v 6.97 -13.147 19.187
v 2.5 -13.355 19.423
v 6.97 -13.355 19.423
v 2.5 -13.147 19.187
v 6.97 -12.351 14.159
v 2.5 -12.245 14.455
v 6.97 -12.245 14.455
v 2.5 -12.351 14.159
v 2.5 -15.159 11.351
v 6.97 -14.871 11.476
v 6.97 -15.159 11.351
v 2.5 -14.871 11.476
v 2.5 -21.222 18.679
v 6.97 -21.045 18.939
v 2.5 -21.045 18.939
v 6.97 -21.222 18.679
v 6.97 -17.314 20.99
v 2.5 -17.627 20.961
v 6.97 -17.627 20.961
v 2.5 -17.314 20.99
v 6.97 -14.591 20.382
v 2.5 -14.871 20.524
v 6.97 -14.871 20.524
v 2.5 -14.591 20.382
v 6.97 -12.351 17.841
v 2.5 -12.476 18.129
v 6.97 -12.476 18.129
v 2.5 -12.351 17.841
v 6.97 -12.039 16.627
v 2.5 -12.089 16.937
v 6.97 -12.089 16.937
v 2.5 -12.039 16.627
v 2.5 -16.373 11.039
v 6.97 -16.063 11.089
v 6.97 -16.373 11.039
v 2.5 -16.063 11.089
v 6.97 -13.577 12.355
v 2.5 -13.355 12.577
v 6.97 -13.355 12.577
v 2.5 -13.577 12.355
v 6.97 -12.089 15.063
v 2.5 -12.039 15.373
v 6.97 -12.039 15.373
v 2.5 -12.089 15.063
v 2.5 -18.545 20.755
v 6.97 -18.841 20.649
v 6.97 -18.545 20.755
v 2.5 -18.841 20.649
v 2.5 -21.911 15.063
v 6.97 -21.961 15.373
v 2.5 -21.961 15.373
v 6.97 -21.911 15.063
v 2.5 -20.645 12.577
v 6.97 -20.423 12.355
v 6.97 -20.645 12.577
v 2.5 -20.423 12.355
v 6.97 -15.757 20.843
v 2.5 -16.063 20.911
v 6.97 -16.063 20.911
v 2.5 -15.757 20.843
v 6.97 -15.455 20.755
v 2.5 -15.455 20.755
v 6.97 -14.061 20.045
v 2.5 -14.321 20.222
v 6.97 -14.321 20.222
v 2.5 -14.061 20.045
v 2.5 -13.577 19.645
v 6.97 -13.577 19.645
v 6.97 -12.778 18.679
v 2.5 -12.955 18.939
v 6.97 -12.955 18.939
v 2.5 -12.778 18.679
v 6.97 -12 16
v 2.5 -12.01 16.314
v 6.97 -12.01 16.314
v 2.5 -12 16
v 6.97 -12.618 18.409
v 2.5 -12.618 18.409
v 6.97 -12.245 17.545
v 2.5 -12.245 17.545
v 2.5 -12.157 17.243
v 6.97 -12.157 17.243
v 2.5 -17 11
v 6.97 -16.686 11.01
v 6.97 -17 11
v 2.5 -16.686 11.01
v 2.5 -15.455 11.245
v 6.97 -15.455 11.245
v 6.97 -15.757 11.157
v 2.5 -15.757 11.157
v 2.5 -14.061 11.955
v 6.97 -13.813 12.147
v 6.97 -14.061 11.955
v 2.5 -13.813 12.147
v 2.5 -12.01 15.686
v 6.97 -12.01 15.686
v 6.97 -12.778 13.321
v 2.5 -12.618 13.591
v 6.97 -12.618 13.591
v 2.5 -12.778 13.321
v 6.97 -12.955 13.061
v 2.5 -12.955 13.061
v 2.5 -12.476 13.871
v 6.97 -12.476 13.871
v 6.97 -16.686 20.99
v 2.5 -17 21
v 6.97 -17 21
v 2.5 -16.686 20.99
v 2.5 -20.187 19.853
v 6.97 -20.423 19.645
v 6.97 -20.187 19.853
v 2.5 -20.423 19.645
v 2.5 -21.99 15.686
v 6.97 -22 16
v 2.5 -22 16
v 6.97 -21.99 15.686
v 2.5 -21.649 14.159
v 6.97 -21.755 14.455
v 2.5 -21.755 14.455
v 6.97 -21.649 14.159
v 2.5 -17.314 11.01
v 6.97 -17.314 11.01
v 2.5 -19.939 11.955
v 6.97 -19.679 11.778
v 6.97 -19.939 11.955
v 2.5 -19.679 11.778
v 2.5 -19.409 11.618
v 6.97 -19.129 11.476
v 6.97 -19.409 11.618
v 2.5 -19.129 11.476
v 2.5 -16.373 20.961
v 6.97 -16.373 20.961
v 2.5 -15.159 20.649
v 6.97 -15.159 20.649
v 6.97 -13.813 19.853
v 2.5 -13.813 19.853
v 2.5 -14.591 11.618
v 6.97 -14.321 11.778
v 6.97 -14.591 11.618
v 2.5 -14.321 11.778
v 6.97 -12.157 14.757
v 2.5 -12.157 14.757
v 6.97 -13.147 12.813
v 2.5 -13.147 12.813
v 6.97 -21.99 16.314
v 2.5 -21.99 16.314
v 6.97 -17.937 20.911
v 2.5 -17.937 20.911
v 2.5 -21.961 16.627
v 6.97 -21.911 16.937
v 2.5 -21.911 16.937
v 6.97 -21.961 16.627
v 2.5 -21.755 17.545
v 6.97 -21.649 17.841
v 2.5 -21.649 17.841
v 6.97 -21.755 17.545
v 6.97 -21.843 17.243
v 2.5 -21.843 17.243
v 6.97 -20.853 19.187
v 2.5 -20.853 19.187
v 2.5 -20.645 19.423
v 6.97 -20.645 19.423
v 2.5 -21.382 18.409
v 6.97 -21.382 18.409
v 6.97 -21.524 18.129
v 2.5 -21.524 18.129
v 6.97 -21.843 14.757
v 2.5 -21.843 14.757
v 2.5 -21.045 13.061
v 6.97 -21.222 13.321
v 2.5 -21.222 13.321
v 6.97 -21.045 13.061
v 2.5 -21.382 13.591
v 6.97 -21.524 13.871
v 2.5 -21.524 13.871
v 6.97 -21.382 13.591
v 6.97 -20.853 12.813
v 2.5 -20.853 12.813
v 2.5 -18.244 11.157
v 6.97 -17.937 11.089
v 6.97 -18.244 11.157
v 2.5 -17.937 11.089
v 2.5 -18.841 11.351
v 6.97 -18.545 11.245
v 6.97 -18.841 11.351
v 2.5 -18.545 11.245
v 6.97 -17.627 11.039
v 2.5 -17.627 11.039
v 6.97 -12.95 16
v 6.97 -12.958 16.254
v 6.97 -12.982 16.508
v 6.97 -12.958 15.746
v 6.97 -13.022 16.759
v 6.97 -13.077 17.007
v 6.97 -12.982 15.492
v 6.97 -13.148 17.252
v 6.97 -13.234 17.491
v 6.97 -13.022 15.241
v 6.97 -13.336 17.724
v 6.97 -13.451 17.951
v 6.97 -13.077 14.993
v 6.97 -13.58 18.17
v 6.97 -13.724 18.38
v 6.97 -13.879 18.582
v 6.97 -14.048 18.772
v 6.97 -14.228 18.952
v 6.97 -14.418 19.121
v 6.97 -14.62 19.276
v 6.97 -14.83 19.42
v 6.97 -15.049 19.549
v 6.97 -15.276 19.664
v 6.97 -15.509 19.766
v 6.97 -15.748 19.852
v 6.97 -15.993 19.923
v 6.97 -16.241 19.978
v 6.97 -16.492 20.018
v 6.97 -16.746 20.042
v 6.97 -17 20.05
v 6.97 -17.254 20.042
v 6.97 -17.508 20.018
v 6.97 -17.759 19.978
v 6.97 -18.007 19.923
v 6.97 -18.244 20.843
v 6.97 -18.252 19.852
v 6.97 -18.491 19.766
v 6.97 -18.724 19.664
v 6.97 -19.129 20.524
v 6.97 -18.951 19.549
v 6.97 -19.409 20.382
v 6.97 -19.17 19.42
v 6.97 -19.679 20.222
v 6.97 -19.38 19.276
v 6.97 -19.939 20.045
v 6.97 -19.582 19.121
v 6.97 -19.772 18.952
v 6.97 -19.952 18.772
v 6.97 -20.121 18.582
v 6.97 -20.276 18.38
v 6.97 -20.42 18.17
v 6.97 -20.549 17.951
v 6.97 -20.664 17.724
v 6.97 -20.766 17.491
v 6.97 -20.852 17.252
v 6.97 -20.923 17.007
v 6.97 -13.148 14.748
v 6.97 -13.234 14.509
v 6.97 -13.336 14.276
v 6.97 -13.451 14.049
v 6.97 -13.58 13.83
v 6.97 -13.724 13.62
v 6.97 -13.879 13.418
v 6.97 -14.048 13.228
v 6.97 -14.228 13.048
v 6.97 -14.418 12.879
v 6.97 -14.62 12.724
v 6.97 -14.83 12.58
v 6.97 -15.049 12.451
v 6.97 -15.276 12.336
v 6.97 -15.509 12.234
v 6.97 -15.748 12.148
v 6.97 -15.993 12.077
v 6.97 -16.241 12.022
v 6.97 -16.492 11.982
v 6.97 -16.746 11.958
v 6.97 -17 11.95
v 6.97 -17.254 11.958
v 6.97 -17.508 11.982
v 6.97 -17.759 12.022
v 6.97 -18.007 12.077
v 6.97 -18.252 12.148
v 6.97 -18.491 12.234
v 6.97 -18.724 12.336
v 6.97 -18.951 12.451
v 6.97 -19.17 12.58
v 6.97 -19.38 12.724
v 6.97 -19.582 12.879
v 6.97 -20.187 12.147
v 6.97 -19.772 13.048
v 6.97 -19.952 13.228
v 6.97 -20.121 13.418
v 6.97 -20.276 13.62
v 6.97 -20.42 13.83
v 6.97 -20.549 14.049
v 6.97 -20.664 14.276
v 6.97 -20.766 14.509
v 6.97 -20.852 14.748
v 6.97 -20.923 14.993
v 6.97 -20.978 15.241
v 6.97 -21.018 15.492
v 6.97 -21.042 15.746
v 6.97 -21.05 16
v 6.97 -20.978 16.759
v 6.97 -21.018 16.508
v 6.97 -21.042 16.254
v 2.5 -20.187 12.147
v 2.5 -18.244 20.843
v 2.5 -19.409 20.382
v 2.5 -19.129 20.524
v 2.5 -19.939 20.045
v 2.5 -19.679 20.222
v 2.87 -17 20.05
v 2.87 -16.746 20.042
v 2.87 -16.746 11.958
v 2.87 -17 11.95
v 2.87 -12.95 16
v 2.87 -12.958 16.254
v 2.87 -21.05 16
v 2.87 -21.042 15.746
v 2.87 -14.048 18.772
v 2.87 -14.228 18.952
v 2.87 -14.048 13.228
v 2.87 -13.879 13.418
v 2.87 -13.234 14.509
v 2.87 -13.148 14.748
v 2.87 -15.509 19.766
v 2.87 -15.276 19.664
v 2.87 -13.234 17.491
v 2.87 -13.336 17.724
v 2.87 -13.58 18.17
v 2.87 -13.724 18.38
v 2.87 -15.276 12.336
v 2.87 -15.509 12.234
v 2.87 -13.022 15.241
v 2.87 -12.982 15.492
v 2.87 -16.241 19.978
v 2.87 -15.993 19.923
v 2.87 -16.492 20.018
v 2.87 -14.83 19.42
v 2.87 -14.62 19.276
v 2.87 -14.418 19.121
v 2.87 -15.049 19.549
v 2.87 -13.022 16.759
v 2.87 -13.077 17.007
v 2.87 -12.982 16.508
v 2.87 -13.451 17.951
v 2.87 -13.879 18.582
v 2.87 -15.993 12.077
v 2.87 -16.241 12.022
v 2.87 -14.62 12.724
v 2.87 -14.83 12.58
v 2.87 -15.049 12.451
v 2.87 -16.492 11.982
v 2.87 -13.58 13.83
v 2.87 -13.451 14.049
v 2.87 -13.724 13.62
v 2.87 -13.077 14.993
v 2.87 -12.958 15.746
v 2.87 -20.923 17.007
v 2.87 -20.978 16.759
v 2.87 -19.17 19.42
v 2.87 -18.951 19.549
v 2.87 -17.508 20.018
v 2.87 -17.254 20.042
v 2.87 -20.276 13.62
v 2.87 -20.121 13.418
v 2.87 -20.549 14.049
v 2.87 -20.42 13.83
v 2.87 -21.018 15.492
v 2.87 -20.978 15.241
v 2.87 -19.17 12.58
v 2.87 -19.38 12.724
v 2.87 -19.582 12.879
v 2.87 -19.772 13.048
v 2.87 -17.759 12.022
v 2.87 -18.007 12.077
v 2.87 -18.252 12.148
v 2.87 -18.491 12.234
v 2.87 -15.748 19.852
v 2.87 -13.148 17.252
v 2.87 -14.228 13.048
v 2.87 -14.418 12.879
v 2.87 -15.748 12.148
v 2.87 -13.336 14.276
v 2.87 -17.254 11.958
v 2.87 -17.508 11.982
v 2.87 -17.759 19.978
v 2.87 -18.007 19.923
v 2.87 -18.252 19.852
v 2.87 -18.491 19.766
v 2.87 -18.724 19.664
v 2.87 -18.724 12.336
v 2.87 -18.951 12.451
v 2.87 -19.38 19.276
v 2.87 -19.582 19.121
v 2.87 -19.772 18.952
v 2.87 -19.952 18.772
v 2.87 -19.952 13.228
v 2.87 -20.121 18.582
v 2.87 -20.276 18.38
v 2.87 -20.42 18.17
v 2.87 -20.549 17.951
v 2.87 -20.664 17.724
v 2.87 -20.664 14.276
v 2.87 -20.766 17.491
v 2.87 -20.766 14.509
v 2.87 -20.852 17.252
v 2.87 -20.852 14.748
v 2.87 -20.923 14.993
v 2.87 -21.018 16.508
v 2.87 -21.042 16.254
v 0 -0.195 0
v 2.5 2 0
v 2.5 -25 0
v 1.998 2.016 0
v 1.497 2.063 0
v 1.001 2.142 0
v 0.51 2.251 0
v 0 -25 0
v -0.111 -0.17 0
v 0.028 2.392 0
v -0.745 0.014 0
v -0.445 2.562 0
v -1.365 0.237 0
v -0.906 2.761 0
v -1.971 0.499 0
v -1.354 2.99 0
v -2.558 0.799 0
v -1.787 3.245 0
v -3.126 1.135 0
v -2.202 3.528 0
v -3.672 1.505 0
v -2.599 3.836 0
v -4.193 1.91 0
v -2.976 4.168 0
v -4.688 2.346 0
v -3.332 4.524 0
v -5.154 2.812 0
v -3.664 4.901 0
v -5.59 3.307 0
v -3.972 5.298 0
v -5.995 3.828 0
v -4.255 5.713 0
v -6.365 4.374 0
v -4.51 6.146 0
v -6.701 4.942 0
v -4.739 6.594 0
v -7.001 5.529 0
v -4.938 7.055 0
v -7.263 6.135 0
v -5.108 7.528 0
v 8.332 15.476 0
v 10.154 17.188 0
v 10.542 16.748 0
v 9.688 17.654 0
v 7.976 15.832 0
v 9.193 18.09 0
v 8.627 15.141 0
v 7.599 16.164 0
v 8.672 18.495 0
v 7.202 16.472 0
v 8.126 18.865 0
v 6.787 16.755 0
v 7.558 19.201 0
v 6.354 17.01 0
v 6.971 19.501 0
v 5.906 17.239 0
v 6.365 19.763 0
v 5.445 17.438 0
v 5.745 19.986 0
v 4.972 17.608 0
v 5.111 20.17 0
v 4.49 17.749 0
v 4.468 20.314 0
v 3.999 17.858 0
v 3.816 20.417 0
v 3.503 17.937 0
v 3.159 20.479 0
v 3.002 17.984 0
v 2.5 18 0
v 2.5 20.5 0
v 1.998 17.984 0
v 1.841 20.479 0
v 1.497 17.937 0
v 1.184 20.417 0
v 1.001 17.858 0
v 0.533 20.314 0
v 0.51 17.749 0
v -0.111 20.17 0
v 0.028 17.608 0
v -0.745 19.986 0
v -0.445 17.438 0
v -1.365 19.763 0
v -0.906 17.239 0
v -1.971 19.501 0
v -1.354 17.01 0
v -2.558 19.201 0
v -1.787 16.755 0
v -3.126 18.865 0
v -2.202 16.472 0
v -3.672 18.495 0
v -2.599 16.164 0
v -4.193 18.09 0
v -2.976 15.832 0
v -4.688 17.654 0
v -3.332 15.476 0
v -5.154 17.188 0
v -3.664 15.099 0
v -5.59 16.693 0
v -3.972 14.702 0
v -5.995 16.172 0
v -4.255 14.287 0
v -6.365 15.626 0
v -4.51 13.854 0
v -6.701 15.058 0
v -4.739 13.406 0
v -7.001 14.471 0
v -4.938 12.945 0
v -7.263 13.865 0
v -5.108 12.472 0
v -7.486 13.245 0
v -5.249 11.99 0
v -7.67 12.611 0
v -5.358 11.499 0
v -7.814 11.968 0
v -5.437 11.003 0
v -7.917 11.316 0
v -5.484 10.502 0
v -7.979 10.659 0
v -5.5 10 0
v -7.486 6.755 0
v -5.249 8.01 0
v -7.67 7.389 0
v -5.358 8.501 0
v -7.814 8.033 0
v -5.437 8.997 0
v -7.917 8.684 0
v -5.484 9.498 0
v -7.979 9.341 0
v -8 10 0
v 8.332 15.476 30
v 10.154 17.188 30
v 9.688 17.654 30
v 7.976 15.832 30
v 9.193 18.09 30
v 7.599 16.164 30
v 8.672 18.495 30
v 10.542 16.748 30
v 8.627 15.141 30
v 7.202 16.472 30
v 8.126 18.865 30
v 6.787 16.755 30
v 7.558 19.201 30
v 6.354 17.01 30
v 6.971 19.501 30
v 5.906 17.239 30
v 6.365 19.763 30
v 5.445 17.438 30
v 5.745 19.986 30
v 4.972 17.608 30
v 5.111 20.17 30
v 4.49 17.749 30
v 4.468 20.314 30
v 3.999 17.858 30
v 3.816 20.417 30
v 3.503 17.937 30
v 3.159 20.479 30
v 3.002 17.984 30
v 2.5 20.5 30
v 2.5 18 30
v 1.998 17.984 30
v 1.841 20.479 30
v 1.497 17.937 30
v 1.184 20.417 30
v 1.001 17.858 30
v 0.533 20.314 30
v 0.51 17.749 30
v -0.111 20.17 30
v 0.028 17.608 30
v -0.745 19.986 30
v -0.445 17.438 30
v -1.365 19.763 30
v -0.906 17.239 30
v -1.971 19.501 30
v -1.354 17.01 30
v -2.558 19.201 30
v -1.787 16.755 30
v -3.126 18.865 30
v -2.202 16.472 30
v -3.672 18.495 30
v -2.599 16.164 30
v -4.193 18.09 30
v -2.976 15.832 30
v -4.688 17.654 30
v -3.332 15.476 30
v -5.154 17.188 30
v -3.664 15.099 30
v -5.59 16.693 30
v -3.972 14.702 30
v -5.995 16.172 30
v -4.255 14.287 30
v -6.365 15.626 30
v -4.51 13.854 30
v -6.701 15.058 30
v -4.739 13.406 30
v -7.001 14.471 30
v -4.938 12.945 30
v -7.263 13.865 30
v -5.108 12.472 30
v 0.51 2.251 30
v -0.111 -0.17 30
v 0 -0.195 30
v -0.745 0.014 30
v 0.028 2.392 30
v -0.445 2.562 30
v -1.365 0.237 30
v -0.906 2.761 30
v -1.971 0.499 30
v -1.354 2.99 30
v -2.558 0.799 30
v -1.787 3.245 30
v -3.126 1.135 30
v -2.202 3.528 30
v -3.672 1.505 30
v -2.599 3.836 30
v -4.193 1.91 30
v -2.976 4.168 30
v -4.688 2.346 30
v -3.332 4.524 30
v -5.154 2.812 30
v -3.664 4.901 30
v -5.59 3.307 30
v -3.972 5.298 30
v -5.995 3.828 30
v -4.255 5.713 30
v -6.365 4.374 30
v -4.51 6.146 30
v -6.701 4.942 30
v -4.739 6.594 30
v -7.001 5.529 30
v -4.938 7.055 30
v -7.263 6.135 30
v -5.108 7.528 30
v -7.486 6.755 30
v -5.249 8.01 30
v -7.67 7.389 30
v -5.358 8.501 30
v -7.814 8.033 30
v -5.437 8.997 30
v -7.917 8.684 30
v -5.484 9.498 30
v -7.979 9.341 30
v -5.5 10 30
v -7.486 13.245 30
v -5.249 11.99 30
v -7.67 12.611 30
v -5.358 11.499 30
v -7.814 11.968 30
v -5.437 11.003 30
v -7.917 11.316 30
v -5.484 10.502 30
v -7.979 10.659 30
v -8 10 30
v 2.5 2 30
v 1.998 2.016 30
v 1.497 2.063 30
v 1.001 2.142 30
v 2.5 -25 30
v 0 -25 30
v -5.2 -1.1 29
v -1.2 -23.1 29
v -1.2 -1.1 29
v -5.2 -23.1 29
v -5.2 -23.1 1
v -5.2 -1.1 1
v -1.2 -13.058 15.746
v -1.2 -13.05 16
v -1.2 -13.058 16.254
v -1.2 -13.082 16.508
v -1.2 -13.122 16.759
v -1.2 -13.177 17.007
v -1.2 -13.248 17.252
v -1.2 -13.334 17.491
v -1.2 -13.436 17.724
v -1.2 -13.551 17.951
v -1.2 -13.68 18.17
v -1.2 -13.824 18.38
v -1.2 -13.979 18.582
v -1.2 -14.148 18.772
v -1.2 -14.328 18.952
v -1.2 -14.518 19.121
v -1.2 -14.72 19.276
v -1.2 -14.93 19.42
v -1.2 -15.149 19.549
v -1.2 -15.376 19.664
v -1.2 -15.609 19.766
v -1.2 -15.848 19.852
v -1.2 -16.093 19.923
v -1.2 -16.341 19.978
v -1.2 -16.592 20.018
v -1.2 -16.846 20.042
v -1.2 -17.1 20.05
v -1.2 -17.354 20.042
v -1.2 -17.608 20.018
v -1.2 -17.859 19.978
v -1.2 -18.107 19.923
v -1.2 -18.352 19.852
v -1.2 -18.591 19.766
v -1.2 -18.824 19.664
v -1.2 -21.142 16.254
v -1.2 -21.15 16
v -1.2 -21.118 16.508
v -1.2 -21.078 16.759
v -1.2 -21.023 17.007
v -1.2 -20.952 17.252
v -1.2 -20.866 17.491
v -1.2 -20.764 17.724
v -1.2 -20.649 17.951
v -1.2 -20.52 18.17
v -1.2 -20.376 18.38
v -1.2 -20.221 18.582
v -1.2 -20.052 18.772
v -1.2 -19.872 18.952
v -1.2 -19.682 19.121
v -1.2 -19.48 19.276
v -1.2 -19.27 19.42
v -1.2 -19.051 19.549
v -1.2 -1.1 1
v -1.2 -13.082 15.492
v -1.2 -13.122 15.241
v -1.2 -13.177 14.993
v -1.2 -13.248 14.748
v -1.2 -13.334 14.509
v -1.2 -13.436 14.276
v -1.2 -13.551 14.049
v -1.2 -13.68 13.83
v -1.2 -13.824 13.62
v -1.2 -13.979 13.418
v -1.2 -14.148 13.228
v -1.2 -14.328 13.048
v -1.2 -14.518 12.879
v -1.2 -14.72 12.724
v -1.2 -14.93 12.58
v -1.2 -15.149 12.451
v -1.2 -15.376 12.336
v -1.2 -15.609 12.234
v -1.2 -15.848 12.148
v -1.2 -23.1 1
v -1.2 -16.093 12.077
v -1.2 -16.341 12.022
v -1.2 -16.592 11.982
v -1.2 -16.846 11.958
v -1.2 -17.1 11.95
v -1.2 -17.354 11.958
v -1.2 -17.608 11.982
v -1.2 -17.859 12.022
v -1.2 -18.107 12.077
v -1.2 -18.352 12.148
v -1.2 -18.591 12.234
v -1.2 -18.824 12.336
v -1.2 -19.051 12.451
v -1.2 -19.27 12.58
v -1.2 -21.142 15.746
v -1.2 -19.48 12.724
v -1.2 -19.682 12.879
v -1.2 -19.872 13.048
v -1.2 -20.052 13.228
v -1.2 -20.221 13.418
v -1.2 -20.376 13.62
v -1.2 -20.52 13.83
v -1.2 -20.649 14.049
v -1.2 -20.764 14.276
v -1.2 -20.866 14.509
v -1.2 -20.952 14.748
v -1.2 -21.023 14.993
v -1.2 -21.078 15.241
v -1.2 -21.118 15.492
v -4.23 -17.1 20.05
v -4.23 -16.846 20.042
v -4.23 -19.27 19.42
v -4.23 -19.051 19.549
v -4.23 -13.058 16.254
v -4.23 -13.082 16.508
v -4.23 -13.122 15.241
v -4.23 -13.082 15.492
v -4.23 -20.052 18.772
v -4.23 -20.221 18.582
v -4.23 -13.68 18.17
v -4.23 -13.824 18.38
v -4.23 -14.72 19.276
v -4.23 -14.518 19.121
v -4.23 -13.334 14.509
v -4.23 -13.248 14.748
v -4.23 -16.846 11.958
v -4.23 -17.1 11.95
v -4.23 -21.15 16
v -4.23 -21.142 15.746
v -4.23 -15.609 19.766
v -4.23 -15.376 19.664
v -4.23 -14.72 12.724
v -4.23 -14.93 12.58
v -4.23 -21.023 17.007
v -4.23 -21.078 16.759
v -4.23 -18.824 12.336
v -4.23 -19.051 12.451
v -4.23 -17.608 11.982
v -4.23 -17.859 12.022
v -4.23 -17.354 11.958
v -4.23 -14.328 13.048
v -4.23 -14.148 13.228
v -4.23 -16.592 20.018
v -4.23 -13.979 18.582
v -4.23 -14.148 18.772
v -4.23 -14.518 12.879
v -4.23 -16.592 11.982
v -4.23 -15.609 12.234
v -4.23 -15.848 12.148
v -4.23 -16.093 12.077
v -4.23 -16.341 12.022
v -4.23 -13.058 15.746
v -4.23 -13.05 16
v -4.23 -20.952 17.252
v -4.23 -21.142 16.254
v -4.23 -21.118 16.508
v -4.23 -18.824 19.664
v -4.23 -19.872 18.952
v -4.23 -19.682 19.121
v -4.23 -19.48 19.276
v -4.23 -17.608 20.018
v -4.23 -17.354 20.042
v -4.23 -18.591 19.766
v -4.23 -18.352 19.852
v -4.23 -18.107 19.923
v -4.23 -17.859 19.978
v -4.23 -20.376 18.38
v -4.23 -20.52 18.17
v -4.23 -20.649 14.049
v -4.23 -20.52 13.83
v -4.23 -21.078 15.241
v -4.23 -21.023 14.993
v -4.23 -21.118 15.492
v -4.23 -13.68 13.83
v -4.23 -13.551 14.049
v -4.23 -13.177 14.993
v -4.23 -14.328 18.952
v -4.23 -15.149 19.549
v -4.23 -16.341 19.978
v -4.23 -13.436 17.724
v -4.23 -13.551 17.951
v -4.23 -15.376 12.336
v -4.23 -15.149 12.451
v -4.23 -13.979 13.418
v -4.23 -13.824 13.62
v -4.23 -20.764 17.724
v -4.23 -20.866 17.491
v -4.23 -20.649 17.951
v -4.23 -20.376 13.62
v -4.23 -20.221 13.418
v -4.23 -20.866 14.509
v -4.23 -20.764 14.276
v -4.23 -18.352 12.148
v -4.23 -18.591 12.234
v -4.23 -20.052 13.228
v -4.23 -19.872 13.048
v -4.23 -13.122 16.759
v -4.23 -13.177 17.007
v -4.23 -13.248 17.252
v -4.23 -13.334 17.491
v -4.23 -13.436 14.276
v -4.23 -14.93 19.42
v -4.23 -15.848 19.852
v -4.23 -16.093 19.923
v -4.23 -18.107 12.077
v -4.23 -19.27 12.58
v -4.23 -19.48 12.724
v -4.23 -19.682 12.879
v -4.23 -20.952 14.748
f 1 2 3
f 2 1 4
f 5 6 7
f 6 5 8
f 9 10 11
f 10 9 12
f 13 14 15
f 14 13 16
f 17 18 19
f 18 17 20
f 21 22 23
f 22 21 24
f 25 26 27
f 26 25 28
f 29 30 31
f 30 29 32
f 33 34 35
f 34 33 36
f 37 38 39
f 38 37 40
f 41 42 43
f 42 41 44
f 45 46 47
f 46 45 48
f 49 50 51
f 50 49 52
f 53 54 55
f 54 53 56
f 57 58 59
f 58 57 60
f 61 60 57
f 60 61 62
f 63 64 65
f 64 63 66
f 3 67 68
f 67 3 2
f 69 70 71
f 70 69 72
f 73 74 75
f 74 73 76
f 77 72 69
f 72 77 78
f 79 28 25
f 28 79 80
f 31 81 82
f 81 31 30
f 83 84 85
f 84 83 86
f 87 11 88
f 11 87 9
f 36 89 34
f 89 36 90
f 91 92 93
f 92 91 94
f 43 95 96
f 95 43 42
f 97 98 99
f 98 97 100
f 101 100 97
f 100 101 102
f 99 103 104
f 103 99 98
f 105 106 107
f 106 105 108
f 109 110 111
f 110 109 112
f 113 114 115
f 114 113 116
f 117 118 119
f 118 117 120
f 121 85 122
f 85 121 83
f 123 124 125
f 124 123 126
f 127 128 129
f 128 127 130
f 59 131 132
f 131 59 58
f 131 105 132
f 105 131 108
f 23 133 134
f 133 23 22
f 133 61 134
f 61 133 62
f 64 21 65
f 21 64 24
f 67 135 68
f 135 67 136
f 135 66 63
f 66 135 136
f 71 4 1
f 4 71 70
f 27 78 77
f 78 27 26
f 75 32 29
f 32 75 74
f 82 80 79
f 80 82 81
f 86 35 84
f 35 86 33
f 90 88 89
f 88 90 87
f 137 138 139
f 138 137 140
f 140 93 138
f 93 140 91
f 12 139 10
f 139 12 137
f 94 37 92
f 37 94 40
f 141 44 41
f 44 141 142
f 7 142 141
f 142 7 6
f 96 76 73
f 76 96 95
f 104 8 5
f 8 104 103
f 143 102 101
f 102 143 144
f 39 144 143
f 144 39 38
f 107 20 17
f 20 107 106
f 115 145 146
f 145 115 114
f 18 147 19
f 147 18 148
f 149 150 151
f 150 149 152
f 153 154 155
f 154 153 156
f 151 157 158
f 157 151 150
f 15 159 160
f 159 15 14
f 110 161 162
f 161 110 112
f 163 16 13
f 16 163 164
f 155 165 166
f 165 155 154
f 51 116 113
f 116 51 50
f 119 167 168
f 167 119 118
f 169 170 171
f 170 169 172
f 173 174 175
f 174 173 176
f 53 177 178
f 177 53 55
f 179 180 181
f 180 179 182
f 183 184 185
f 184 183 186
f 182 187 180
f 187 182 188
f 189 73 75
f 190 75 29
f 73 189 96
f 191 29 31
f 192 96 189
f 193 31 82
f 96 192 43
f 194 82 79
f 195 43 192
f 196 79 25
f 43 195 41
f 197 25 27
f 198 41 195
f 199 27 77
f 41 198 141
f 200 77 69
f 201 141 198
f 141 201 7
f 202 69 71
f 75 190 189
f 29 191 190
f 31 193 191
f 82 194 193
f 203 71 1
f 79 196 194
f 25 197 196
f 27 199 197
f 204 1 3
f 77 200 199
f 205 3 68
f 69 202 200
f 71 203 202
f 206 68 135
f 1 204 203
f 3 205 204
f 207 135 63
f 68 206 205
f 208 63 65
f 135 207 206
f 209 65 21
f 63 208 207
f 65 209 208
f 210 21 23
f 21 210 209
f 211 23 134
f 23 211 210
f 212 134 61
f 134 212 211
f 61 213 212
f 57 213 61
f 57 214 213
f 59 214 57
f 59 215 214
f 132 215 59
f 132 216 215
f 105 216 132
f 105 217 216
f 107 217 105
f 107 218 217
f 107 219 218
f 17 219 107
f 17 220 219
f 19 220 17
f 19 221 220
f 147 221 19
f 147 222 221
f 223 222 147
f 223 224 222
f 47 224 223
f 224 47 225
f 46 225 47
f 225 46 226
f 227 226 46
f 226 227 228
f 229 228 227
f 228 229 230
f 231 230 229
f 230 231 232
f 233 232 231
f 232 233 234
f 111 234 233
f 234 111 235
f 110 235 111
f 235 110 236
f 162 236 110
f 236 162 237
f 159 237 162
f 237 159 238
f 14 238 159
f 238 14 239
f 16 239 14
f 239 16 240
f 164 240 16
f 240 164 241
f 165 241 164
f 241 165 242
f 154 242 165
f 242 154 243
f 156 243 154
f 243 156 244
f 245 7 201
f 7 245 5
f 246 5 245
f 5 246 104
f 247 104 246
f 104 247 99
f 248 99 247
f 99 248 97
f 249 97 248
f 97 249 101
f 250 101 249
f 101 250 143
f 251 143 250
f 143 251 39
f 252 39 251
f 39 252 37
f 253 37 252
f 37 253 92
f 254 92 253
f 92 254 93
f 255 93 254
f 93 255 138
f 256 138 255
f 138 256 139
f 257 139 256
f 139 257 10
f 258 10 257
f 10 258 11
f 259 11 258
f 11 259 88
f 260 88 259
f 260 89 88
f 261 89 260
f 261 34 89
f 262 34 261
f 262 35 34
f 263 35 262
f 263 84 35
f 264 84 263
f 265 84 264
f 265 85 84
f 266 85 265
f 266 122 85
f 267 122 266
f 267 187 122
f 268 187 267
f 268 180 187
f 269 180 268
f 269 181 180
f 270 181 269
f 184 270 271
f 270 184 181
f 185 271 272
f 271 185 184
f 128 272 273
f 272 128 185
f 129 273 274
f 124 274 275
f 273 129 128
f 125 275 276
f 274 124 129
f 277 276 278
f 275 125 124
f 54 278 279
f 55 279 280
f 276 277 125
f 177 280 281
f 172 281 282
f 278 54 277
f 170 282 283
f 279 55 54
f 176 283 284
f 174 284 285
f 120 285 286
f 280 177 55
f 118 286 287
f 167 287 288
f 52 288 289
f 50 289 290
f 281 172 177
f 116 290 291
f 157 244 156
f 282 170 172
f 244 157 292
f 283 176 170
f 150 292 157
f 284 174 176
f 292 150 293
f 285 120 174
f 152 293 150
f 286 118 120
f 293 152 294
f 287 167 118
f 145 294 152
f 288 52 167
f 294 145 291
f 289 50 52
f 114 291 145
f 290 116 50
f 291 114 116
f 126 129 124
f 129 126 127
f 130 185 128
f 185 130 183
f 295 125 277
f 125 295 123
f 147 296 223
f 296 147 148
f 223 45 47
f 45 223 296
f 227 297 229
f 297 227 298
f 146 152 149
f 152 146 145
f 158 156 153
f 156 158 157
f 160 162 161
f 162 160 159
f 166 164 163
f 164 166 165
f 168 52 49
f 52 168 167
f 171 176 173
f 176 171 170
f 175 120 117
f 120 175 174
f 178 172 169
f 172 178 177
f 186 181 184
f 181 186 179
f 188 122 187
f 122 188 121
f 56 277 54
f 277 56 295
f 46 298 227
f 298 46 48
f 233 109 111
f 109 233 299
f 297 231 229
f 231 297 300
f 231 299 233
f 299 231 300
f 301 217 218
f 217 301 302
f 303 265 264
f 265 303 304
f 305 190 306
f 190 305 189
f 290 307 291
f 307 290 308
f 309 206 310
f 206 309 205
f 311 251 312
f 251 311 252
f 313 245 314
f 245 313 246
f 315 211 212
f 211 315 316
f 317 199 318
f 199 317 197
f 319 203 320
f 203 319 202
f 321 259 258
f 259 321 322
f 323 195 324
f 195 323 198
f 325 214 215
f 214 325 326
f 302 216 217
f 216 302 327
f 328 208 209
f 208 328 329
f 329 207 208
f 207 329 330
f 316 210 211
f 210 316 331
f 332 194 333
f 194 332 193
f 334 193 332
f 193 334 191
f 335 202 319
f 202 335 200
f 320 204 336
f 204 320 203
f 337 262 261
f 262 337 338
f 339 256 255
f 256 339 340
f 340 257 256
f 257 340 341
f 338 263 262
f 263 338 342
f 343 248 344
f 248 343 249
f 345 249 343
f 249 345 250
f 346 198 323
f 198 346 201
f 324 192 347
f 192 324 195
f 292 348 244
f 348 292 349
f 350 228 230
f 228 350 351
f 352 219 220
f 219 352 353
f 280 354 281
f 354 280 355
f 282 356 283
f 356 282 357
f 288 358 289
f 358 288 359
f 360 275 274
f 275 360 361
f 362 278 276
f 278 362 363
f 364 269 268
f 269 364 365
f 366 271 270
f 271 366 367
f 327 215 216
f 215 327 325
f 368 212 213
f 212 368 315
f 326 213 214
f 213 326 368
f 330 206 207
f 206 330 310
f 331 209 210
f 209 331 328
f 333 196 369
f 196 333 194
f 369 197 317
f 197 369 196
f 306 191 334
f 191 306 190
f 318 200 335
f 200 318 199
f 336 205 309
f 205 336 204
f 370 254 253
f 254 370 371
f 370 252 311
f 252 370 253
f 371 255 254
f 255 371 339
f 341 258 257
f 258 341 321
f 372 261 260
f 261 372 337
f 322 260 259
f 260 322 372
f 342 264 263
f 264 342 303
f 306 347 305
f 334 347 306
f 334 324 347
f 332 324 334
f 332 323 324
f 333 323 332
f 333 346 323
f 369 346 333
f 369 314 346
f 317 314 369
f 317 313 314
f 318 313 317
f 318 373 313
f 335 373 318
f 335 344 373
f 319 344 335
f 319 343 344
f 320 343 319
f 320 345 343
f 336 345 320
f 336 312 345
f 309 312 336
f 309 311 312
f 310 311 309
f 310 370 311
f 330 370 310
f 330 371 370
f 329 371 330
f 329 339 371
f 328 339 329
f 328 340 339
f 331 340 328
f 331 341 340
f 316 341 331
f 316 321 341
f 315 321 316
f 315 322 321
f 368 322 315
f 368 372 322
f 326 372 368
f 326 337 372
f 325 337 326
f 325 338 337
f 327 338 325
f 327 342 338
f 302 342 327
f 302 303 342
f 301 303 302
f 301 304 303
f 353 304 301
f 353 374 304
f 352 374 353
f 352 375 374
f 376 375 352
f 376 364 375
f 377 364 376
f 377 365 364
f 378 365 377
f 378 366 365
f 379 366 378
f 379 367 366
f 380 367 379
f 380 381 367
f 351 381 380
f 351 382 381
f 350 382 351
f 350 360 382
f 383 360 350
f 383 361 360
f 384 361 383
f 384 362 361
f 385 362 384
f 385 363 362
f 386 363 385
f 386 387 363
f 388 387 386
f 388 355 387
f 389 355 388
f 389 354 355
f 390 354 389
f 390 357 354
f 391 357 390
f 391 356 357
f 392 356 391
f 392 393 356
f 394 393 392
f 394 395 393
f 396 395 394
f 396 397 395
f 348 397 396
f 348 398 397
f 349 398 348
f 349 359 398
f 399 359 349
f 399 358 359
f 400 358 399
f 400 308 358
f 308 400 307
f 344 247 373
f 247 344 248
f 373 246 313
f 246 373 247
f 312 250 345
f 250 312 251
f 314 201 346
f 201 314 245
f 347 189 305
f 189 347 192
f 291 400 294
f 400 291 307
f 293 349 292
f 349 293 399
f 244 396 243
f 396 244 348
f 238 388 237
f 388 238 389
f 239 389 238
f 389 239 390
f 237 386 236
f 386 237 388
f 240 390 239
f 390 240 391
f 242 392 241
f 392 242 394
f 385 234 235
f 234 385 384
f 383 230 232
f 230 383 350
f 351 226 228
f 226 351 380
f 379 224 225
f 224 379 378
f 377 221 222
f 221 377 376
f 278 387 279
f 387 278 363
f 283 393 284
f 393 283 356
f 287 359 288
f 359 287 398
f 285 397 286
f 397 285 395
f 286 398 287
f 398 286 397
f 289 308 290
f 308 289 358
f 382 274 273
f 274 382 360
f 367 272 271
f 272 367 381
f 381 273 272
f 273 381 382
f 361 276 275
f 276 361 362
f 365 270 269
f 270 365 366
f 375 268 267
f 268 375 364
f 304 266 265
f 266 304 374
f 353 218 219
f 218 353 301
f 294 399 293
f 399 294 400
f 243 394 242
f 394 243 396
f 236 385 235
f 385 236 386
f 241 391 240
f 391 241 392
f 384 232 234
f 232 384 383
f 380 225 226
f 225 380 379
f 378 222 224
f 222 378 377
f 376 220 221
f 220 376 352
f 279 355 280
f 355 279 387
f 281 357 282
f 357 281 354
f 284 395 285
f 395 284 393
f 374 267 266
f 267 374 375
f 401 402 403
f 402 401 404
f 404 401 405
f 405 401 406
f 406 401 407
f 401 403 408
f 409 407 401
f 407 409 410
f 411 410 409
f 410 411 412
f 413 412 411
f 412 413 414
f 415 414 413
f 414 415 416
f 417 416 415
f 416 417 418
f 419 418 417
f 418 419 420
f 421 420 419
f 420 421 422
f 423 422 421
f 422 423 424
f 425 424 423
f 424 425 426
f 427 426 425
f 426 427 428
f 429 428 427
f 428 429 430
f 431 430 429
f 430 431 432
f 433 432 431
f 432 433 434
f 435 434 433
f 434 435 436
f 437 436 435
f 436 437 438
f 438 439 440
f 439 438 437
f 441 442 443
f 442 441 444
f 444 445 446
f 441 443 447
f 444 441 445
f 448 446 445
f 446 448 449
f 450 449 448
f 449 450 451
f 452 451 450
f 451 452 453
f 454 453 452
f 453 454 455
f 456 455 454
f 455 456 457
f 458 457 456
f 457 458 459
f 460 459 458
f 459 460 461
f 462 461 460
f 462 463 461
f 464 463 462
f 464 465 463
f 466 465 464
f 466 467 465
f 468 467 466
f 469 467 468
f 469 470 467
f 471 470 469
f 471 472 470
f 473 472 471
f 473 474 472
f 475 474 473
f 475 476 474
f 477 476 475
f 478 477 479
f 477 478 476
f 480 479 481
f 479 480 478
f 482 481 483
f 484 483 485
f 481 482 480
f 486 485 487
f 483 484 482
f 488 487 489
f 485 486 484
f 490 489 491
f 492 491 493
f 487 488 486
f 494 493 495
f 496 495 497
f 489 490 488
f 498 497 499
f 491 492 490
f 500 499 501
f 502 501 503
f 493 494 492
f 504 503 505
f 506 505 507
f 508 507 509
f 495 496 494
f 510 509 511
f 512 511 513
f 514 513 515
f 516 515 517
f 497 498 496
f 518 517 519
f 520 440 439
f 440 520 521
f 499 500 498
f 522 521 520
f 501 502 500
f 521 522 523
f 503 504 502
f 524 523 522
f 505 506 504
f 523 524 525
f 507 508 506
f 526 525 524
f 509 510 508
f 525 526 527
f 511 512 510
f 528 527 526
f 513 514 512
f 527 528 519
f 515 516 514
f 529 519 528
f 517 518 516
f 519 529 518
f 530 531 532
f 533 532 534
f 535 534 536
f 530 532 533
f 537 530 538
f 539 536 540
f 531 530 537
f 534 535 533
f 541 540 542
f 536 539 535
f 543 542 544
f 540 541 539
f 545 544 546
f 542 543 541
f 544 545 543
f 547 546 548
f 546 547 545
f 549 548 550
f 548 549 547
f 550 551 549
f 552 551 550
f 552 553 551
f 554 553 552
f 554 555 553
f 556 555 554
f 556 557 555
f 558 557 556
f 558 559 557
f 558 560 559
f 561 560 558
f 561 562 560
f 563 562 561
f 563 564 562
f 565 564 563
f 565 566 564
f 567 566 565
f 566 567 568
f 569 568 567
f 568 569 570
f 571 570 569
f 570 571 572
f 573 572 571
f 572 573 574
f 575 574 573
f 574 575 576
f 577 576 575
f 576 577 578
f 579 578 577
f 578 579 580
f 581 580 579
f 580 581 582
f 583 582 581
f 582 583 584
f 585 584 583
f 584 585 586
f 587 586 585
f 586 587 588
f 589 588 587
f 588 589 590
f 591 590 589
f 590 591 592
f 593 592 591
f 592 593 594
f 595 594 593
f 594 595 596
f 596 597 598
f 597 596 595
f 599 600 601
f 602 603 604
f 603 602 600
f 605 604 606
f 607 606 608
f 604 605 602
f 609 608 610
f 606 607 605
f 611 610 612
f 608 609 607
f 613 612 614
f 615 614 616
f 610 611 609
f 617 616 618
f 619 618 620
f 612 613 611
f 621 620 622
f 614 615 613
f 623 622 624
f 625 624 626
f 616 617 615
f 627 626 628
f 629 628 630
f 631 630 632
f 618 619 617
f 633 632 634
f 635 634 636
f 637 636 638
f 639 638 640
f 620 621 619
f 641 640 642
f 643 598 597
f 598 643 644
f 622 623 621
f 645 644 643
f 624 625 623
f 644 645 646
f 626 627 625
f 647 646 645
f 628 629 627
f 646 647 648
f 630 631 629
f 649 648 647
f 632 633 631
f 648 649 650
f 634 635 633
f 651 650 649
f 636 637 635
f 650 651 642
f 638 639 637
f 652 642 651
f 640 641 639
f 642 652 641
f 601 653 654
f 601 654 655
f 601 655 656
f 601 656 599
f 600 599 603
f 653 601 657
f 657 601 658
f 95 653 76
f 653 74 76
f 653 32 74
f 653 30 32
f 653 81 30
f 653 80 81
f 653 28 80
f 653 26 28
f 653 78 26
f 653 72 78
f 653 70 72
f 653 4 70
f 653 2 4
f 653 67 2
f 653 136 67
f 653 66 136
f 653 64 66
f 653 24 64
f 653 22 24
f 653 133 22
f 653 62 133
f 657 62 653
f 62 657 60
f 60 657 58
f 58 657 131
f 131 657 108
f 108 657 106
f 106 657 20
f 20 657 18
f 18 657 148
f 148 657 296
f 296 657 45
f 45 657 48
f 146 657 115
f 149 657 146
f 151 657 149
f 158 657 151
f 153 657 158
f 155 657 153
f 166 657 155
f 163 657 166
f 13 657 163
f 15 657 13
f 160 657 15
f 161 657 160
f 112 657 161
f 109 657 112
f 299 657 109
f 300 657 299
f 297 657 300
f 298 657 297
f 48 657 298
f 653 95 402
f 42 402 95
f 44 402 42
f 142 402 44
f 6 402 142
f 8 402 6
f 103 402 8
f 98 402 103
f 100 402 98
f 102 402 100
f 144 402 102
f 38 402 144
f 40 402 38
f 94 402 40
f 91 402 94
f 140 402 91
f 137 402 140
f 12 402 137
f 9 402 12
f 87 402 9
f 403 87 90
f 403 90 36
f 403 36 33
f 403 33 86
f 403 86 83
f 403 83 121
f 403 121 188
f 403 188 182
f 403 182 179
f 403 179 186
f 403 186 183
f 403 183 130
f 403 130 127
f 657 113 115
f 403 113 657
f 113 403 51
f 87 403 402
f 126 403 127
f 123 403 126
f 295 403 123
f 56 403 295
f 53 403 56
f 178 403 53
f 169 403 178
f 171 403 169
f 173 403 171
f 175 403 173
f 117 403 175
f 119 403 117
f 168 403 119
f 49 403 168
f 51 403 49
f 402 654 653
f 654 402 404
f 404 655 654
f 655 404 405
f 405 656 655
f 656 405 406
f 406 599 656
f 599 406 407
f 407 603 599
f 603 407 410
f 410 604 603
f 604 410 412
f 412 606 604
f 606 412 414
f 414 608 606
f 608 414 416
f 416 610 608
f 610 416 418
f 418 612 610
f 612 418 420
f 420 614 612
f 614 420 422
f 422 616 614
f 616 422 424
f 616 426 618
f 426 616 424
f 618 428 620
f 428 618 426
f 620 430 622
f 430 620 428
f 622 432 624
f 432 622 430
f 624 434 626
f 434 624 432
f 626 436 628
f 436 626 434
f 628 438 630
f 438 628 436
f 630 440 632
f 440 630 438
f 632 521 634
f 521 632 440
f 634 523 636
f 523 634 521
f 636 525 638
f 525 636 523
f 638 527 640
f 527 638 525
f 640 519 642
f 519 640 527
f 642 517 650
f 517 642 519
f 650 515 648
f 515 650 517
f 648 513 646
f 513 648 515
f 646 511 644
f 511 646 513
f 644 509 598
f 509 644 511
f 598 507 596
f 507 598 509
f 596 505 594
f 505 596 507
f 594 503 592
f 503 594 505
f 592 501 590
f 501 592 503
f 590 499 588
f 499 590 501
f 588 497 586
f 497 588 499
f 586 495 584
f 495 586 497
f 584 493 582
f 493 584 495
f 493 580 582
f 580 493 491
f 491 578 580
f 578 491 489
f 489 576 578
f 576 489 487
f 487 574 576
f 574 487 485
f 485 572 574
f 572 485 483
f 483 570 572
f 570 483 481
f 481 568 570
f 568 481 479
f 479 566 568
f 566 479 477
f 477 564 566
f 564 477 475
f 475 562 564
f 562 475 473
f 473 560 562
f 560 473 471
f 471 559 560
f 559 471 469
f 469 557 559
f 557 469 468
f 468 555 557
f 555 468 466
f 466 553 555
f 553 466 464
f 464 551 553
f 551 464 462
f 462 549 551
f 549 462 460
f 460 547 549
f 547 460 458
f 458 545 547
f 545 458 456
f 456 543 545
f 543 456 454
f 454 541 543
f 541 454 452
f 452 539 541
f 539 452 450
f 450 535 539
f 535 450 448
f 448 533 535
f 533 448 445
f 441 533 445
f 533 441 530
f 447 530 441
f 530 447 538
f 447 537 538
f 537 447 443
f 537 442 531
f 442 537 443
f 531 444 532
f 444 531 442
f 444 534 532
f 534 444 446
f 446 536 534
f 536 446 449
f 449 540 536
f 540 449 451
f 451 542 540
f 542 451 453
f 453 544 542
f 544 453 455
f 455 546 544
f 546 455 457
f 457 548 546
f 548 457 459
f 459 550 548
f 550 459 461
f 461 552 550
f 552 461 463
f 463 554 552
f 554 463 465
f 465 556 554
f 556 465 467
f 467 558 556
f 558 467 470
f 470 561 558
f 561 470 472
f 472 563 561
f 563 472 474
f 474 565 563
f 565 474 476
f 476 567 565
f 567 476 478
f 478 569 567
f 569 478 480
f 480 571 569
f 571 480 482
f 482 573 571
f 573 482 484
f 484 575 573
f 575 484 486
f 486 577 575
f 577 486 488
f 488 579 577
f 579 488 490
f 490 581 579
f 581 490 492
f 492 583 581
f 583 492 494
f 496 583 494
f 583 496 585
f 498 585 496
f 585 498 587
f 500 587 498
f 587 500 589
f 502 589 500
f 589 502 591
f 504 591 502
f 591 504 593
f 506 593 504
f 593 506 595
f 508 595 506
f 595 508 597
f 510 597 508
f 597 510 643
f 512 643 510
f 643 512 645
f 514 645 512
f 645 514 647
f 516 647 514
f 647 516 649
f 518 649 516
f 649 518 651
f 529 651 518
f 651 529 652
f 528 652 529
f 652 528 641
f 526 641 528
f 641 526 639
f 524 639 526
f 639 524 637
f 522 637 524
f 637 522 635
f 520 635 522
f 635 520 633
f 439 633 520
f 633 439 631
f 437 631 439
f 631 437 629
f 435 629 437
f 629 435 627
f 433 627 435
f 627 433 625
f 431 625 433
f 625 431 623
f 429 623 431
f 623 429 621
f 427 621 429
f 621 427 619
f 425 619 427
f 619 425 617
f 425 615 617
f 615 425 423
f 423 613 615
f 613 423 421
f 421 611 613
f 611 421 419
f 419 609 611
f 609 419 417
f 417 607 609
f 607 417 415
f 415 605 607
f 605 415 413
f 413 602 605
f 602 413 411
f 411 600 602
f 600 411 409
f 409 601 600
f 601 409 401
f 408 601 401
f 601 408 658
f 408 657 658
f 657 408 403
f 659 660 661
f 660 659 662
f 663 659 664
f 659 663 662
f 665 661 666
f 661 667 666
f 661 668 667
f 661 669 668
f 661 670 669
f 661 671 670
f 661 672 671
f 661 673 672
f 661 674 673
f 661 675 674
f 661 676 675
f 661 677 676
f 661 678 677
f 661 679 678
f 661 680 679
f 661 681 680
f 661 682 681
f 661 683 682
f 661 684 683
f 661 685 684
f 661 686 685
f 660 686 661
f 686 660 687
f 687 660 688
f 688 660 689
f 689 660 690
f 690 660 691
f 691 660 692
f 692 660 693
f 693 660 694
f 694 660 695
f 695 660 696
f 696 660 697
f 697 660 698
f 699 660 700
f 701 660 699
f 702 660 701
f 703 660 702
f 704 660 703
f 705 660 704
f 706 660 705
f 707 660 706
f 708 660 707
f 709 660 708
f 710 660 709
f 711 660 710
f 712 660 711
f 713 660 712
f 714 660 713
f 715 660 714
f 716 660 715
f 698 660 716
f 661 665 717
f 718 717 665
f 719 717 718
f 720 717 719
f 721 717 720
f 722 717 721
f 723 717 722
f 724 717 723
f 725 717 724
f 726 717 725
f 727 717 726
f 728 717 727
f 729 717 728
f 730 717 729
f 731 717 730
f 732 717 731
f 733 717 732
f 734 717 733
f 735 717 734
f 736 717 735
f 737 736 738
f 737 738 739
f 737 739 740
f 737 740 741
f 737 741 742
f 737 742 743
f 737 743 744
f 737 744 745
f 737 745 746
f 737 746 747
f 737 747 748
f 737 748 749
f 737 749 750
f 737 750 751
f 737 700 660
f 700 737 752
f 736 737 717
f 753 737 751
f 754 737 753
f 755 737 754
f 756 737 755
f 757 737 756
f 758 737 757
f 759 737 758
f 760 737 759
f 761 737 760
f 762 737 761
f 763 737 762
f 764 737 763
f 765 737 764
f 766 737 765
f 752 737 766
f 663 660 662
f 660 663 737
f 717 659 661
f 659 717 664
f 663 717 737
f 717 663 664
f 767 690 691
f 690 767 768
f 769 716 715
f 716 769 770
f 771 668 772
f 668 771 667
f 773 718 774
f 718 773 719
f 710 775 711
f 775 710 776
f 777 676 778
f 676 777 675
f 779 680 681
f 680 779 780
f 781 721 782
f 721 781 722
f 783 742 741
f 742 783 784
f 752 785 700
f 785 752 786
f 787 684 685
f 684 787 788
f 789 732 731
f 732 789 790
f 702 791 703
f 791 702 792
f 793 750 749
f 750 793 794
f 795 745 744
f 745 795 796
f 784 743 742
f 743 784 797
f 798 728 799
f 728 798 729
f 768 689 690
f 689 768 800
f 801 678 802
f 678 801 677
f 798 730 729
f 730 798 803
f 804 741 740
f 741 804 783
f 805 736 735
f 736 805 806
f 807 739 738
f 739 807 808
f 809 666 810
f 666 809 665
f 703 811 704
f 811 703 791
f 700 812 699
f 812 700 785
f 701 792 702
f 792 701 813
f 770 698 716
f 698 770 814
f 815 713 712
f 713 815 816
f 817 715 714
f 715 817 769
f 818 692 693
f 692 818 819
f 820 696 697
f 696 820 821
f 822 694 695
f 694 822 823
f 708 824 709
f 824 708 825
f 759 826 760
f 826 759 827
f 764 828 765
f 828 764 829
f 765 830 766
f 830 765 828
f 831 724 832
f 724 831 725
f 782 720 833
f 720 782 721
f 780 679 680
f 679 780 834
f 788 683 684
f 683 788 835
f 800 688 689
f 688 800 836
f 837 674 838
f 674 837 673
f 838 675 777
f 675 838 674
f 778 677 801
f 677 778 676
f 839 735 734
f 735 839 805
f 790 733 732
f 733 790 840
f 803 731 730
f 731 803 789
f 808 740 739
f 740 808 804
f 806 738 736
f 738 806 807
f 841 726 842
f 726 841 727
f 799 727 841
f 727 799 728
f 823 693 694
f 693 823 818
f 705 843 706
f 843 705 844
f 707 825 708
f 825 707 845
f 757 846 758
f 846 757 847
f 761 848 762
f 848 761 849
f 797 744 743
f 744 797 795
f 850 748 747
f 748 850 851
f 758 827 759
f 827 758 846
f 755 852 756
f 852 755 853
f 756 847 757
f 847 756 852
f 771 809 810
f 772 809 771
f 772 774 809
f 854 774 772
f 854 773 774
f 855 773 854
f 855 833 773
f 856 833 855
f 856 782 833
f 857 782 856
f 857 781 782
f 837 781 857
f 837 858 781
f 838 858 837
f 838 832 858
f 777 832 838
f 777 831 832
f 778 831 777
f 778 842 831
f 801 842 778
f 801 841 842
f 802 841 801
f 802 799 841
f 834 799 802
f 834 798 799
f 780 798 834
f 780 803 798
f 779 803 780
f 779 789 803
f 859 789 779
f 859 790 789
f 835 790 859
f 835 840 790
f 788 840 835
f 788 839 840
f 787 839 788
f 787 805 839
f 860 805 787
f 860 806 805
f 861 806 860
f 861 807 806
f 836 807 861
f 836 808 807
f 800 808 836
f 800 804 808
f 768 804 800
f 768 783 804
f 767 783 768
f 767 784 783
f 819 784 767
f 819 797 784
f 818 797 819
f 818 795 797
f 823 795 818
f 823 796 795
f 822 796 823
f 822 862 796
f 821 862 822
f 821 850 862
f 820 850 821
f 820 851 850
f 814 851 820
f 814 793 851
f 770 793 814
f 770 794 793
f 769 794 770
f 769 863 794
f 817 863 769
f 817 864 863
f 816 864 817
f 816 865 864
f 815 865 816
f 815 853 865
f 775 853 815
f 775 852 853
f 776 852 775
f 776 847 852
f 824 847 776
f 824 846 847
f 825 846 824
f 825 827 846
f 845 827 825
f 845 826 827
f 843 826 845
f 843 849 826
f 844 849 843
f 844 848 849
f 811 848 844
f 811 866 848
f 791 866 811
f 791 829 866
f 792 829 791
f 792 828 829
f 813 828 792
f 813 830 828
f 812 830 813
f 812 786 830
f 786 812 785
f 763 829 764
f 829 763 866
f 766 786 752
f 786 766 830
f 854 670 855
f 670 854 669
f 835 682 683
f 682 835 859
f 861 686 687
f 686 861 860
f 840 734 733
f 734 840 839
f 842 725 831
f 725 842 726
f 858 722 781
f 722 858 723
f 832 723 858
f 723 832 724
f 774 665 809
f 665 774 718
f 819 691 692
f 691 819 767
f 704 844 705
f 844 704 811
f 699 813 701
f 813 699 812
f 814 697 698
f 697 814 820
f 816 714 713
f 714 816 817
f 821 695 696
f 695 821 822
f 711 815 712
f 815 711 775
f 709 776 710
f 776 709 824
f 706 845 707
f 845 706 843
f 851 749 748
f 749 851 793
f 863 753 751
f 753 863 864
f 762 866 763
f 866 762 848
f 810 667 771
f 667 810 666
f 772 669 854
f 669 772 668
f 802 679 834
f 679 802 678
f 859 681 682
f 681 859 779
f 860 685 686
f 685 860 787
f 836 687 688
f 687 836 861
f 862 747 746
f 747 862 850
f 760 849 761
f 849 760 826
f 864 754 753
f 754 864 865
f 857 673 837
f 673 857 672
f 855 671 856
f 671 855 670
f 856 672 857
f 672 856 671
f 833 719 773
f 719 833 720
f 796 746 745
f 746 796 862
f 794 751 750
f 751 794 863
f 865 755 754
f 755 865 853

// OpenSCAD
spessore=2.5;
$fn=100;

module pie_slice(r, start_angle, end_angle) {
    R = r * sqrt(2) + 1;
    a0 = (4 * start_angle + 0 * end_angle) / 4;
    a1 = (3 * start_angle + 1 * end_angle) / 4;
    a2 = (2 * start_angle + 2 * end_angle) / 4;
    a3 = (1 * start_angle + 3 * end_angle) / 4;
    a4 = (0 * start_angle + 4 * end_angle) / 4;
    if(end_angle > start_angle)
        intersection() {
        circle(r);
        polygon([
            [0,0],
            [R * cos(a0), R * sin(a0)],
            [R * cos(a1), R * sin(a1)],
            [R * cos(a2), R * sin(a2)],
            [R * cos(a3), R * sin(a3)],
            [R * cos(a4), R * sin(a4)],
            [0,0]
       ]);
    }
}

module gancio(){
    linear_extrude(height = 30){

        union(){
    translate([10.5,0,0])

                translate([-8,10,0])
                rotate([0,0,90])
                
                difference(){
                pie_slice(8+spessore, -50, 180);
                pie_slice(8, -100, 250);
                }

                pie_slice(spessore, 270, 365);

                //translate([6,-19,0])
                //square(center = false,size = [spessore, 20] );

                //translate([17.5,-19,0])
                //rotate([0,0,30])
                //square(center = false,size = [spessore, 23] );

                rotate([0,0,0])
                translate([0,0-25,0])
                square(center = false,size = [spessore, 25] );
            }
    }

 translate([7,-17,16])
 rotate([0,270,0])
 portaCalamita();
   
}

module calamita(){
 cylinder($fn=100,d=8.10,h=4.13, center = false);
}


module pezzo(){
    difference(){
    linear_extrude(height = 28){
    translate([10.1,-26,0])
                square(center = false,size = [4, 22] );
                }

    //calamita
    translate([9,-20,13])
                rotate([0,90,0]){

                                  calamita();
                }
            }  
    }
    
module portaCalamita(){
        difference(){
            translate([0,0,0.03])
            cylinder($fn=100,d=10,h=5.5, center = false);
            calamita();
        }
    }


//translate([6,7,0])  cylinder($fn=100,d=11,h=200, center = false);


gancio();


rotate([0,180,1800])    

translate([-8.9,2.9,-29])
pezzo();
